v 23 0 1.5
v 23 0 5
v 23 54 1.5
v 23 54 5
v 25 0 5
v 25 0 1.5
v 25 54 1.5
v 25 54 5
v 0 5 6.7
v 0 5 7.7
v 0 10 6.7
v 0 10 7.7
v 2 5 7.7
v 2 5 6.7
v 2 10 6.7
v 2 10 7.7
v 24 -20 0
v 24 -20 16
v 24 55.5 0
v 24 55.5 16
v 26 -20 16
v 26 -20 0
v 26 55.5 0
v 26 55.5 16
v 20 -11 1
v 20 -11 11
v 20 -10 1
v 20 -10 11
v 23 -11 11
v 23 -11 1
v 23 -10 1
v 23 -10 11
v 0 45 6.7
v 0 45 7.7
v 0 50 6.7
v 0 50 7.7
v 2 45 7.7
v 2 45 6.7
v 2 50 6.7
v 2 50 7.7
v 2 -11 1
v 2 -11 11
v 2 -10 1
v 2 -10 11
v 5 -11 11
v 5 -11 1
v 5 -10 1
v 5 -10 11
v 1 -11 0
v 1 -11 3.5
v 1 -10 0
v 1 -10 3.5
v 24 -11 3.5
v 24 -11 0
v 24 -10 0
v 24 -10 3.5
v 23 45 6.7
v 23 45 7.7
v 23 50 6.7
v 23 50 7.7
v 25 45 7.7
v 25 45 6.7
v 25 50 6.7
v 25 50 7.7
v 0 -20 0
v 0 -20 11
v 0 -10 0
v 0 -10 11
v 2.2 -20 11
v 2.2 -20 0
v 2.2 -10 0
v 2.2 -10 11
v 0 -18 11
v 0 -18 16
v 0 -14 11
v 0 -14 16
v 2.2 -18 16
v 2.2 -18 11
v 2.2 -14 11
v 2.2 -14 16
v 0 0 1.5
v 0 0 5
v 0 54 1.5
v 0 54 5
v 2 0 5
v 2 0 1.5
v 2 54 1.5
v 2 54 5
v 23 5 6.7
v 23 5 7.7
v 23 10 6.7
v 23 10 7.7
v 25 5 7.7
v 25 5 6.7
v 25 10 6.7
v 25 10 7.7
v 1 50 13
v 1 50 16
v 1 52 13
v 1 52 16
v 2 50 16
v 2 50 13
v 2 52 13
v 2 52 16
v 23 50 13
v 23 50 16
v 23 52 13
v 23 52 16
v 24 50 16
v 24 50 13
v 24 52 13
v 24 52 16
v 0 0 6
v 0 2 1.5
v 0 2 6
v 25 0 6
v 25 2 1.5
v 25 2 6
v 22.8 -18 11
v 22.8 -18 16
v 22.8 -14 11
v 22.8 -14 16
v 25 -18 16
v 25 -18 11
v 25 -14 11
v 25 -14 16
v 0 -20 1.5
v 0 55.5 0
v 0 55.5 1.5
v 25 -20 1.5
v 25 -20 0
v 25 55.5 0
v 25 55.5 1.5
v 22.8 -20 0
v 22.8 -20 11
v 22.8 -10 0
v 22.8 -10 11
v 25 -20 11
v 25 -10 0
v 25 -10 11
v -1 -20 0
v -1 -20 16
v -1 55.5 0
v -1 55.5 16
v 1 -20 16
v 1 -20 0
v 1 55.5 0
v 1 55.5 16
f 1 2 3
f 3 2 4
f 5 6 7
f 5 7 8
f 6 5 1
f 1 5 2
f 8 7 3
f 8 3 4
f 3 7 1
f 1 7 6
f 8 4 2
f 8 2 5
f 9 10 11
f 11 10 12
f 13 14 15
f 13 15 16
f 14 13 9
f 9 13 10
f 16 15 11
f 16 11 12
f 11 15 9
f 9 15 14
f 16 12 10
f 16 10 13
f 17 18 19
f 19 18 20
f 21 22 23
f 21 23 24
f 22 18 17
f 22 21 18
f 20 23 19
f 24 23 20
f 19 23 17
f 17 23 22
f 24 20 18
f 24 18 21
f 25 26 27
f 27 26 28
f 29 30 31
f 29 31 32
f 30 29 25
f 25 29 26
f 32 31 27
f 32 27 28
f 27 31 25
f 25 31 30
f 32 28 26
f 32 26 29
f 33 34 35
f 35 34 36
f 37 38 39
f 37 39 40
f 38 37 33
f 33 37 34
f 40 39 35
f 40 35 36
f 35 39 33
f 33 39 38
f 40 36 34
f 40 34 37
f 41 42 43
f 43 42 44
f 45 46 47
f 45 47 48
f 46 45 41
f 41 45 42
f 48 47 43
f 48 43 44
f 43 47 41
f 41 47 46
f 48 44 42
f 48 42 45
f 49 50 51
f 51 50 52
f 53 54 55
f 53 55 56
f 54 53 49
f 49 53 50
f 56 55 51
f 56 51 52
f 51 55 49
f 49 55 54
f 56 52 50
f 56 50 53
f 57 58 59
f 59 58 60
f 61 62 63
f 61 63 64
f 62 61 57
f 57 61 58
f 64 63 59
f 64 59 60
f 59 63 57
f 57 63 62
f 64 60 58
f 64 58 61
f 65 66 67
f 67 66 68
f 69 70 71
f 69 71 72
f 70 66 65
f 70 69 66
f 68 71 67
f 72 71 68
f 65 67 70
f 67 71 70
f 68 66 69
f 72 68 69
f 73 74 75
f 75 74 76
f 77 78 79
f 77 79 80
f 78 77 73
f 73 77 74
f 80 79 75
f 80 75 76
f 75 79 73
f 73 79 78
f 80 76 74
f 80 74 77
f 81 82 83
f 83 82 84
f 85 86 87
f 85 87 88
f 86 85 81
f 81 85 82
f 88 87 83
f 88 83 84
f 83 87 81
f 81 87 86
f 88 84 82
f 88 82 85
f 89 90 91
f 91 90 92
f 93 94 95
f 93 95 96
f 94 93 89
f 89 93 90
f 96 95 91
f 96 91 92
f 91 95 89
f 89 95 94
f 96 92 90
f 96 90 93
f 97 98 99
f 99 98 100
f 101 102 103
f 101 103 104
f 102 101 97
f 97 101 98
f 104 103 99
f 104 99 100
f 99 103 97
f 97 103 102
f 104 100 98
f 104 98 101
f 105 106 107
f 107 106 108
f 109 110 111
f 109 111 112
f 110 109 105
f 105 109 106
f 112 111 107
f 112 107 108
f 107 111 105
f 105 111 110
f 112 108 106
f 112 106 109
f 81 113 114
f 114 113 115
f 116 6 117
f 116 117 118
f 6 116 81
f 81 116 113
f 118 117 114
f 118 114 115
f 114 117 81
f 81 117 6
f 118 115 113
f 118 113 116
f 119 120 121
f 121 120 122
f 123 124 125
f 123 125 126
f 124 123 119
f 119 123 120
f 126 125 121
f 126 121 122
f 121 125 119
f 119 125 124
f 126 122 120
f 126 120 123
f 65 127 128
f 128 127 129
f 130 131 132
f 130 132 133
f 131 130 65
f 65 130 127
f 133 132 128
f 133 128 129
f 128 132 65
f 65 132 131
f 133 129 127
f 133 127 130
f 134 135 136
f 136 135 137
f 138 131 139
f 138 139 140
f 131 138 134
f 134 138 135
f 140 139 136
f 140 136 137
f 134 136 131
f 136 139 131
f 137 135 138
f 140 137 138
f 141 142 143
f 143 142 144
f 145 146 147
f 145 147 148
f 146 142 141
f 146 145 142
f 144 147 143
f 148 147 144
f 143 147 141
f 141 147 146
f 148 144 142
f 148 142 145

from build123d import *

# Parameters (mm, degrees)
BOX_W        = 25
BOX_H        = 75.5
BOX_DEPTH    = 1.5
BOX001_W     = 2
BOX001_H     = 54
BOX001_DEPTH = 3.5
BOX002_W     = 2
BOX002_H     = 75.5
BOX002_DEPTH = 16
BOX005_W     = 2
BOX005_H     = 54
BOX005_DEPTH = 3.5
BOX006_W     = 2
BOX006_H     = 75.5
BOX006_DEPTH = 16
BOX007_W     = 25
BOX007_H     = 2
BOX007_DEPTH = 4.5
BOX008_W     = 2
BOX008_H     = 5
BOX008_DEPTH = 1
BOX009_W     = 2
BOX009_H     = 5
BOX009_DEPTH = 1
BOX012_W     = 2
BOX012_H     = 5
BOX012_DEPTH = 1
BOX014_W     = 2
BOX014_H     = 5
BOX014_DEPTH = 1
BOX015_W     = 2.2
BOX015_H     = 10
BOX015_DEPTH = 11
BOX016_W     = 2.2
BOX016_H     = 10
BOX016_DEPTH = 11
BOX017_W     = 23
BOX017_H     = 1
BOX017_DEPTH = 3.5
BOX018_W     = 2.2
BOX018_H     = 4
BOX018_DEPTH = 5
BOX019_W     = 2.2
BOX019_H     = 4
BOX019_DEPTH = 5
BOX020_W     = 3
BOX020_H     = 1
BOX020_DEPTH = 10
BOX021_W     = 3
BOX021_H     = 1
BOX021_DEPTH = 10
BOX022_W     = 1
BOX022_H     = 2
BOX022_DEPTH = 3
BOX023_W     = 1
BOX023_H     = 2
BOX023_DEPTH = 3


with BuildPart() as kocka:
    # Box → Box (new body)
    with BuildSketch(Plane(origin=(0, -20, 0), x_dir=(1, 0, 0), z_dir=(0, 0, 1))):
        with Locations((12.5, 37.75)):
            Rectangle(BOX_W, BOX_H)
    extrude(amount=BOX_DEPTH)


with BuildPart() as kocka001:
    # Box001 → Box001 (new body)
    with BuildSketch(Plane.XY.offset(1.5)):
        with Locations((1, 27)):
            Rectangle(BOX001_W, BOX001_H)
    extrude(amount=BOX001_DEPTH)


with BuildPart() as kocka002:
    # Box002 → Box002 (new body)
    with BuildSketch(Plane(origin=(-1, -20, 0), x_dir=(1, 0, 0), z_dir=(0, 0, 1))):
        with Locations((1, 37.75)):
            Rectangle(BOX002_W, BOX002_H)
    extrude(amount=BOX002_DEPTH)


with BuildPart() as kocka005:
    # Box005 → Box005 (new body)
    with BuildSketch(Plane(origin=(23, 0, 1.5), x_dir=(1, 0, 0), z_dir=(0, 0, 1))):
        with Locations((1, 27)):
            Rectangle(BOX005_W, BOX005_H)
    extrude(amount=BOX005_DEPTH)


with BuildPart() as kocka006:
    # Box006 → Box006 (new body)
    with BuildSketch(Plane(origin=(24, -20, 0), x_dir=(1, 0, 0), z_dir=(0, 0, 1))):
        with Locations((1, 37.75)):
            Rectangle(BOX006_W, BOX006_H)
    extrude(amount=BOX006_DEPTH)


with BuildPart() as kocka007:
    # Box007 → Box007 (new body)
    with BuildSketch(Plane.XY.offset(1.5)):
        with Locations((12.5, 1)):
            Rectangle(BOX007_W, BOX007_H)
    extrude(amount=BOX007_DEPTH)


with BuildPart() as kocka008:
    # Box008 → Box008 (new body)
    with BuildSketch(Plane(origin=(0, 5, 6.7), x_dir=(1, 0, 0), z_dir=(0, 0, 1))):
        with Locations((1, 2.5)):
            Rectangle(BOX008_W, BOX008_H)
    extrude(amount=BOX008_DEPTH)


with BuildPart() as kocka009:
    # Box009 → Box009 (new body)
    with BuildSketch(Plane(origin=(0, 45, 6.7), x_dir=(1, 0, 0), z_dir=(0, 0, 1))):
        with Locations((1, 2.5)):
            Rectangle(BOX009_W, BOX009_H)
    extrude(amount=BOX009_DEPTH)


with BuildPart() as kocka012:
    # Box012 → Box012 (new body)
    with BuildSketch(Plane(origin=(23, 5, 6.7), x_dir=(1, 0, 0), z_dir=(0, 0, 1))):
        with Locations((1, 2.5)):
            Rectangle(BOX012_W, BOX012_H)
    extrude(amount=BOX012_DEPTH)


with BuildPart() as kocka014:
    # Box014 → Box014 (new body)
    with BuildSketch(Plane(origin=(23, 45, 6.7), x_dir=(1, 0, 0), z_dir=(0, 0, 1))):
        with Locations((1, 2.5)):
            Rectangle(BOX014_W, BOX014_H)
    extrude(amount=BOX014_DEPTH)


with BuildPart() as kocka015:
    # Box015 → Box015 (new body)
    with BuildSketch(Plane(origin=(0, -20, 0), x_dir=(1, 0, 0), z_dir=(0, 0, 1))):
        with Locations((1.1, 5)):
            Rectangle(BOX015_W, BOX015_H)
    extrude(amount=BOX015_DEPTH)


with BuildPart() as kocka016:
    # Box016 → Box016 (new body)
    with BuildSketch(Plane(origin=(22.8, -20, 0), x_dir=(1, 0, 0), z_dir=(0, 0, 1))):
        with Locations((1.1, 5)):
            Rectangle(BOX016_W, BOX016_H)
    extrude(amount=BOX016_DEPTH)


with BuildPart() as kocka017:
    # Box017 → Box017 (new body)
    with BuildSketch(Plane(origin=(1, -11, 0), x_dir=(1, 0, 0), z_dir=(0, 0, 1))):
        with Locations((11.5, 0.5)):
            Rectangle(BOX017_W, BOX017_H)
    extrude(amount=BOX017_DEPTH)


with BuildPart() as kocka018:
    # Box018 → Box018 (new body)
    with BuildSketch(Plane(origin=(0, -18, 11), x_dir=(1, 0, 0), z_dir=(0, 0, 1))):
        with Locations((1.1, 2)):
            Rectangle(BOX018_W, BOX018_H)
    extrude(amount=BOX018_DEPTH)


with BuildPart() as kocka019:
    # Box019 → Box019 (new body)
    with BuildSketch(Plane(origin=(22.8, -18, 11), x_dir=(1, 0, 0), z_dir=(0, 0, 1))):
        with Locations((1.1, 2)):
            Rectangle(BOX019_W, BOX019_H)
    extrude(amount=BOX019_DEPTH)


with BuildPart() as kocka020:
    # Box020 → Box020 (new body)
    with BuildSketch(Plane(origin=(2, -11, 1), x_dir=(1, 0, 0), z_dir=(0, 0, 1))):
        with Locations((1.5, 0.5)):
            Rectangle(BOX020_W, BOX020_H)
    extrude(amount=BOX020_DEPTH)


with BuildPart() as kocka021:
    # Box021 → Box021 (new body)
    with BuildSketch(Plane(origin=(20, -11, 1), x_dir=(1, 0, 0), z_dir=(0, 0, 1))):
        with Locations((1.5, 0.5)):
            Rectangle(BOX021_W, BOX021_H)
    extrude(amount=BOX021_DEPTH)


with BuildPart() as kocka022:
    # Box022 → Box022 (new body)
    with BuildSketch(Plane(origin=(1, 50, 13), x_dir=(1, 0, 0), z_dir=(0, 0, 1))):
        with Locations((0.5, 1)):
            Rectangle(BOX022_W, BOX022_H)
    extrude(amount=BOX022_DEPTH)


with BuildPart() as kocka023:
    # Box023 → Box023 (new body)
    with BuildSketch(Plane(origin=(23, 50, 13), x_dir=(1, 0, 0), z_dir=(0, 0, 1))):
        with Locations((0.5, 1)):
            Rectangle(BOX023_W, BOX023_H)
    extrude(amount=BOX023_DEPTH)


solid = Compound([kocka.part, kocka001.part, kocka002.part, kocka005.part, kocka006.part, kocka007.part, kocka008.part, kocka009.part, kocka012.part, kocka014.part, kocka015.part, kocka016.part, kocka017.part, kocka018.part, kocka019.part, kocka020.part, kocka021.part, kocka022.part, kocka023.part])
